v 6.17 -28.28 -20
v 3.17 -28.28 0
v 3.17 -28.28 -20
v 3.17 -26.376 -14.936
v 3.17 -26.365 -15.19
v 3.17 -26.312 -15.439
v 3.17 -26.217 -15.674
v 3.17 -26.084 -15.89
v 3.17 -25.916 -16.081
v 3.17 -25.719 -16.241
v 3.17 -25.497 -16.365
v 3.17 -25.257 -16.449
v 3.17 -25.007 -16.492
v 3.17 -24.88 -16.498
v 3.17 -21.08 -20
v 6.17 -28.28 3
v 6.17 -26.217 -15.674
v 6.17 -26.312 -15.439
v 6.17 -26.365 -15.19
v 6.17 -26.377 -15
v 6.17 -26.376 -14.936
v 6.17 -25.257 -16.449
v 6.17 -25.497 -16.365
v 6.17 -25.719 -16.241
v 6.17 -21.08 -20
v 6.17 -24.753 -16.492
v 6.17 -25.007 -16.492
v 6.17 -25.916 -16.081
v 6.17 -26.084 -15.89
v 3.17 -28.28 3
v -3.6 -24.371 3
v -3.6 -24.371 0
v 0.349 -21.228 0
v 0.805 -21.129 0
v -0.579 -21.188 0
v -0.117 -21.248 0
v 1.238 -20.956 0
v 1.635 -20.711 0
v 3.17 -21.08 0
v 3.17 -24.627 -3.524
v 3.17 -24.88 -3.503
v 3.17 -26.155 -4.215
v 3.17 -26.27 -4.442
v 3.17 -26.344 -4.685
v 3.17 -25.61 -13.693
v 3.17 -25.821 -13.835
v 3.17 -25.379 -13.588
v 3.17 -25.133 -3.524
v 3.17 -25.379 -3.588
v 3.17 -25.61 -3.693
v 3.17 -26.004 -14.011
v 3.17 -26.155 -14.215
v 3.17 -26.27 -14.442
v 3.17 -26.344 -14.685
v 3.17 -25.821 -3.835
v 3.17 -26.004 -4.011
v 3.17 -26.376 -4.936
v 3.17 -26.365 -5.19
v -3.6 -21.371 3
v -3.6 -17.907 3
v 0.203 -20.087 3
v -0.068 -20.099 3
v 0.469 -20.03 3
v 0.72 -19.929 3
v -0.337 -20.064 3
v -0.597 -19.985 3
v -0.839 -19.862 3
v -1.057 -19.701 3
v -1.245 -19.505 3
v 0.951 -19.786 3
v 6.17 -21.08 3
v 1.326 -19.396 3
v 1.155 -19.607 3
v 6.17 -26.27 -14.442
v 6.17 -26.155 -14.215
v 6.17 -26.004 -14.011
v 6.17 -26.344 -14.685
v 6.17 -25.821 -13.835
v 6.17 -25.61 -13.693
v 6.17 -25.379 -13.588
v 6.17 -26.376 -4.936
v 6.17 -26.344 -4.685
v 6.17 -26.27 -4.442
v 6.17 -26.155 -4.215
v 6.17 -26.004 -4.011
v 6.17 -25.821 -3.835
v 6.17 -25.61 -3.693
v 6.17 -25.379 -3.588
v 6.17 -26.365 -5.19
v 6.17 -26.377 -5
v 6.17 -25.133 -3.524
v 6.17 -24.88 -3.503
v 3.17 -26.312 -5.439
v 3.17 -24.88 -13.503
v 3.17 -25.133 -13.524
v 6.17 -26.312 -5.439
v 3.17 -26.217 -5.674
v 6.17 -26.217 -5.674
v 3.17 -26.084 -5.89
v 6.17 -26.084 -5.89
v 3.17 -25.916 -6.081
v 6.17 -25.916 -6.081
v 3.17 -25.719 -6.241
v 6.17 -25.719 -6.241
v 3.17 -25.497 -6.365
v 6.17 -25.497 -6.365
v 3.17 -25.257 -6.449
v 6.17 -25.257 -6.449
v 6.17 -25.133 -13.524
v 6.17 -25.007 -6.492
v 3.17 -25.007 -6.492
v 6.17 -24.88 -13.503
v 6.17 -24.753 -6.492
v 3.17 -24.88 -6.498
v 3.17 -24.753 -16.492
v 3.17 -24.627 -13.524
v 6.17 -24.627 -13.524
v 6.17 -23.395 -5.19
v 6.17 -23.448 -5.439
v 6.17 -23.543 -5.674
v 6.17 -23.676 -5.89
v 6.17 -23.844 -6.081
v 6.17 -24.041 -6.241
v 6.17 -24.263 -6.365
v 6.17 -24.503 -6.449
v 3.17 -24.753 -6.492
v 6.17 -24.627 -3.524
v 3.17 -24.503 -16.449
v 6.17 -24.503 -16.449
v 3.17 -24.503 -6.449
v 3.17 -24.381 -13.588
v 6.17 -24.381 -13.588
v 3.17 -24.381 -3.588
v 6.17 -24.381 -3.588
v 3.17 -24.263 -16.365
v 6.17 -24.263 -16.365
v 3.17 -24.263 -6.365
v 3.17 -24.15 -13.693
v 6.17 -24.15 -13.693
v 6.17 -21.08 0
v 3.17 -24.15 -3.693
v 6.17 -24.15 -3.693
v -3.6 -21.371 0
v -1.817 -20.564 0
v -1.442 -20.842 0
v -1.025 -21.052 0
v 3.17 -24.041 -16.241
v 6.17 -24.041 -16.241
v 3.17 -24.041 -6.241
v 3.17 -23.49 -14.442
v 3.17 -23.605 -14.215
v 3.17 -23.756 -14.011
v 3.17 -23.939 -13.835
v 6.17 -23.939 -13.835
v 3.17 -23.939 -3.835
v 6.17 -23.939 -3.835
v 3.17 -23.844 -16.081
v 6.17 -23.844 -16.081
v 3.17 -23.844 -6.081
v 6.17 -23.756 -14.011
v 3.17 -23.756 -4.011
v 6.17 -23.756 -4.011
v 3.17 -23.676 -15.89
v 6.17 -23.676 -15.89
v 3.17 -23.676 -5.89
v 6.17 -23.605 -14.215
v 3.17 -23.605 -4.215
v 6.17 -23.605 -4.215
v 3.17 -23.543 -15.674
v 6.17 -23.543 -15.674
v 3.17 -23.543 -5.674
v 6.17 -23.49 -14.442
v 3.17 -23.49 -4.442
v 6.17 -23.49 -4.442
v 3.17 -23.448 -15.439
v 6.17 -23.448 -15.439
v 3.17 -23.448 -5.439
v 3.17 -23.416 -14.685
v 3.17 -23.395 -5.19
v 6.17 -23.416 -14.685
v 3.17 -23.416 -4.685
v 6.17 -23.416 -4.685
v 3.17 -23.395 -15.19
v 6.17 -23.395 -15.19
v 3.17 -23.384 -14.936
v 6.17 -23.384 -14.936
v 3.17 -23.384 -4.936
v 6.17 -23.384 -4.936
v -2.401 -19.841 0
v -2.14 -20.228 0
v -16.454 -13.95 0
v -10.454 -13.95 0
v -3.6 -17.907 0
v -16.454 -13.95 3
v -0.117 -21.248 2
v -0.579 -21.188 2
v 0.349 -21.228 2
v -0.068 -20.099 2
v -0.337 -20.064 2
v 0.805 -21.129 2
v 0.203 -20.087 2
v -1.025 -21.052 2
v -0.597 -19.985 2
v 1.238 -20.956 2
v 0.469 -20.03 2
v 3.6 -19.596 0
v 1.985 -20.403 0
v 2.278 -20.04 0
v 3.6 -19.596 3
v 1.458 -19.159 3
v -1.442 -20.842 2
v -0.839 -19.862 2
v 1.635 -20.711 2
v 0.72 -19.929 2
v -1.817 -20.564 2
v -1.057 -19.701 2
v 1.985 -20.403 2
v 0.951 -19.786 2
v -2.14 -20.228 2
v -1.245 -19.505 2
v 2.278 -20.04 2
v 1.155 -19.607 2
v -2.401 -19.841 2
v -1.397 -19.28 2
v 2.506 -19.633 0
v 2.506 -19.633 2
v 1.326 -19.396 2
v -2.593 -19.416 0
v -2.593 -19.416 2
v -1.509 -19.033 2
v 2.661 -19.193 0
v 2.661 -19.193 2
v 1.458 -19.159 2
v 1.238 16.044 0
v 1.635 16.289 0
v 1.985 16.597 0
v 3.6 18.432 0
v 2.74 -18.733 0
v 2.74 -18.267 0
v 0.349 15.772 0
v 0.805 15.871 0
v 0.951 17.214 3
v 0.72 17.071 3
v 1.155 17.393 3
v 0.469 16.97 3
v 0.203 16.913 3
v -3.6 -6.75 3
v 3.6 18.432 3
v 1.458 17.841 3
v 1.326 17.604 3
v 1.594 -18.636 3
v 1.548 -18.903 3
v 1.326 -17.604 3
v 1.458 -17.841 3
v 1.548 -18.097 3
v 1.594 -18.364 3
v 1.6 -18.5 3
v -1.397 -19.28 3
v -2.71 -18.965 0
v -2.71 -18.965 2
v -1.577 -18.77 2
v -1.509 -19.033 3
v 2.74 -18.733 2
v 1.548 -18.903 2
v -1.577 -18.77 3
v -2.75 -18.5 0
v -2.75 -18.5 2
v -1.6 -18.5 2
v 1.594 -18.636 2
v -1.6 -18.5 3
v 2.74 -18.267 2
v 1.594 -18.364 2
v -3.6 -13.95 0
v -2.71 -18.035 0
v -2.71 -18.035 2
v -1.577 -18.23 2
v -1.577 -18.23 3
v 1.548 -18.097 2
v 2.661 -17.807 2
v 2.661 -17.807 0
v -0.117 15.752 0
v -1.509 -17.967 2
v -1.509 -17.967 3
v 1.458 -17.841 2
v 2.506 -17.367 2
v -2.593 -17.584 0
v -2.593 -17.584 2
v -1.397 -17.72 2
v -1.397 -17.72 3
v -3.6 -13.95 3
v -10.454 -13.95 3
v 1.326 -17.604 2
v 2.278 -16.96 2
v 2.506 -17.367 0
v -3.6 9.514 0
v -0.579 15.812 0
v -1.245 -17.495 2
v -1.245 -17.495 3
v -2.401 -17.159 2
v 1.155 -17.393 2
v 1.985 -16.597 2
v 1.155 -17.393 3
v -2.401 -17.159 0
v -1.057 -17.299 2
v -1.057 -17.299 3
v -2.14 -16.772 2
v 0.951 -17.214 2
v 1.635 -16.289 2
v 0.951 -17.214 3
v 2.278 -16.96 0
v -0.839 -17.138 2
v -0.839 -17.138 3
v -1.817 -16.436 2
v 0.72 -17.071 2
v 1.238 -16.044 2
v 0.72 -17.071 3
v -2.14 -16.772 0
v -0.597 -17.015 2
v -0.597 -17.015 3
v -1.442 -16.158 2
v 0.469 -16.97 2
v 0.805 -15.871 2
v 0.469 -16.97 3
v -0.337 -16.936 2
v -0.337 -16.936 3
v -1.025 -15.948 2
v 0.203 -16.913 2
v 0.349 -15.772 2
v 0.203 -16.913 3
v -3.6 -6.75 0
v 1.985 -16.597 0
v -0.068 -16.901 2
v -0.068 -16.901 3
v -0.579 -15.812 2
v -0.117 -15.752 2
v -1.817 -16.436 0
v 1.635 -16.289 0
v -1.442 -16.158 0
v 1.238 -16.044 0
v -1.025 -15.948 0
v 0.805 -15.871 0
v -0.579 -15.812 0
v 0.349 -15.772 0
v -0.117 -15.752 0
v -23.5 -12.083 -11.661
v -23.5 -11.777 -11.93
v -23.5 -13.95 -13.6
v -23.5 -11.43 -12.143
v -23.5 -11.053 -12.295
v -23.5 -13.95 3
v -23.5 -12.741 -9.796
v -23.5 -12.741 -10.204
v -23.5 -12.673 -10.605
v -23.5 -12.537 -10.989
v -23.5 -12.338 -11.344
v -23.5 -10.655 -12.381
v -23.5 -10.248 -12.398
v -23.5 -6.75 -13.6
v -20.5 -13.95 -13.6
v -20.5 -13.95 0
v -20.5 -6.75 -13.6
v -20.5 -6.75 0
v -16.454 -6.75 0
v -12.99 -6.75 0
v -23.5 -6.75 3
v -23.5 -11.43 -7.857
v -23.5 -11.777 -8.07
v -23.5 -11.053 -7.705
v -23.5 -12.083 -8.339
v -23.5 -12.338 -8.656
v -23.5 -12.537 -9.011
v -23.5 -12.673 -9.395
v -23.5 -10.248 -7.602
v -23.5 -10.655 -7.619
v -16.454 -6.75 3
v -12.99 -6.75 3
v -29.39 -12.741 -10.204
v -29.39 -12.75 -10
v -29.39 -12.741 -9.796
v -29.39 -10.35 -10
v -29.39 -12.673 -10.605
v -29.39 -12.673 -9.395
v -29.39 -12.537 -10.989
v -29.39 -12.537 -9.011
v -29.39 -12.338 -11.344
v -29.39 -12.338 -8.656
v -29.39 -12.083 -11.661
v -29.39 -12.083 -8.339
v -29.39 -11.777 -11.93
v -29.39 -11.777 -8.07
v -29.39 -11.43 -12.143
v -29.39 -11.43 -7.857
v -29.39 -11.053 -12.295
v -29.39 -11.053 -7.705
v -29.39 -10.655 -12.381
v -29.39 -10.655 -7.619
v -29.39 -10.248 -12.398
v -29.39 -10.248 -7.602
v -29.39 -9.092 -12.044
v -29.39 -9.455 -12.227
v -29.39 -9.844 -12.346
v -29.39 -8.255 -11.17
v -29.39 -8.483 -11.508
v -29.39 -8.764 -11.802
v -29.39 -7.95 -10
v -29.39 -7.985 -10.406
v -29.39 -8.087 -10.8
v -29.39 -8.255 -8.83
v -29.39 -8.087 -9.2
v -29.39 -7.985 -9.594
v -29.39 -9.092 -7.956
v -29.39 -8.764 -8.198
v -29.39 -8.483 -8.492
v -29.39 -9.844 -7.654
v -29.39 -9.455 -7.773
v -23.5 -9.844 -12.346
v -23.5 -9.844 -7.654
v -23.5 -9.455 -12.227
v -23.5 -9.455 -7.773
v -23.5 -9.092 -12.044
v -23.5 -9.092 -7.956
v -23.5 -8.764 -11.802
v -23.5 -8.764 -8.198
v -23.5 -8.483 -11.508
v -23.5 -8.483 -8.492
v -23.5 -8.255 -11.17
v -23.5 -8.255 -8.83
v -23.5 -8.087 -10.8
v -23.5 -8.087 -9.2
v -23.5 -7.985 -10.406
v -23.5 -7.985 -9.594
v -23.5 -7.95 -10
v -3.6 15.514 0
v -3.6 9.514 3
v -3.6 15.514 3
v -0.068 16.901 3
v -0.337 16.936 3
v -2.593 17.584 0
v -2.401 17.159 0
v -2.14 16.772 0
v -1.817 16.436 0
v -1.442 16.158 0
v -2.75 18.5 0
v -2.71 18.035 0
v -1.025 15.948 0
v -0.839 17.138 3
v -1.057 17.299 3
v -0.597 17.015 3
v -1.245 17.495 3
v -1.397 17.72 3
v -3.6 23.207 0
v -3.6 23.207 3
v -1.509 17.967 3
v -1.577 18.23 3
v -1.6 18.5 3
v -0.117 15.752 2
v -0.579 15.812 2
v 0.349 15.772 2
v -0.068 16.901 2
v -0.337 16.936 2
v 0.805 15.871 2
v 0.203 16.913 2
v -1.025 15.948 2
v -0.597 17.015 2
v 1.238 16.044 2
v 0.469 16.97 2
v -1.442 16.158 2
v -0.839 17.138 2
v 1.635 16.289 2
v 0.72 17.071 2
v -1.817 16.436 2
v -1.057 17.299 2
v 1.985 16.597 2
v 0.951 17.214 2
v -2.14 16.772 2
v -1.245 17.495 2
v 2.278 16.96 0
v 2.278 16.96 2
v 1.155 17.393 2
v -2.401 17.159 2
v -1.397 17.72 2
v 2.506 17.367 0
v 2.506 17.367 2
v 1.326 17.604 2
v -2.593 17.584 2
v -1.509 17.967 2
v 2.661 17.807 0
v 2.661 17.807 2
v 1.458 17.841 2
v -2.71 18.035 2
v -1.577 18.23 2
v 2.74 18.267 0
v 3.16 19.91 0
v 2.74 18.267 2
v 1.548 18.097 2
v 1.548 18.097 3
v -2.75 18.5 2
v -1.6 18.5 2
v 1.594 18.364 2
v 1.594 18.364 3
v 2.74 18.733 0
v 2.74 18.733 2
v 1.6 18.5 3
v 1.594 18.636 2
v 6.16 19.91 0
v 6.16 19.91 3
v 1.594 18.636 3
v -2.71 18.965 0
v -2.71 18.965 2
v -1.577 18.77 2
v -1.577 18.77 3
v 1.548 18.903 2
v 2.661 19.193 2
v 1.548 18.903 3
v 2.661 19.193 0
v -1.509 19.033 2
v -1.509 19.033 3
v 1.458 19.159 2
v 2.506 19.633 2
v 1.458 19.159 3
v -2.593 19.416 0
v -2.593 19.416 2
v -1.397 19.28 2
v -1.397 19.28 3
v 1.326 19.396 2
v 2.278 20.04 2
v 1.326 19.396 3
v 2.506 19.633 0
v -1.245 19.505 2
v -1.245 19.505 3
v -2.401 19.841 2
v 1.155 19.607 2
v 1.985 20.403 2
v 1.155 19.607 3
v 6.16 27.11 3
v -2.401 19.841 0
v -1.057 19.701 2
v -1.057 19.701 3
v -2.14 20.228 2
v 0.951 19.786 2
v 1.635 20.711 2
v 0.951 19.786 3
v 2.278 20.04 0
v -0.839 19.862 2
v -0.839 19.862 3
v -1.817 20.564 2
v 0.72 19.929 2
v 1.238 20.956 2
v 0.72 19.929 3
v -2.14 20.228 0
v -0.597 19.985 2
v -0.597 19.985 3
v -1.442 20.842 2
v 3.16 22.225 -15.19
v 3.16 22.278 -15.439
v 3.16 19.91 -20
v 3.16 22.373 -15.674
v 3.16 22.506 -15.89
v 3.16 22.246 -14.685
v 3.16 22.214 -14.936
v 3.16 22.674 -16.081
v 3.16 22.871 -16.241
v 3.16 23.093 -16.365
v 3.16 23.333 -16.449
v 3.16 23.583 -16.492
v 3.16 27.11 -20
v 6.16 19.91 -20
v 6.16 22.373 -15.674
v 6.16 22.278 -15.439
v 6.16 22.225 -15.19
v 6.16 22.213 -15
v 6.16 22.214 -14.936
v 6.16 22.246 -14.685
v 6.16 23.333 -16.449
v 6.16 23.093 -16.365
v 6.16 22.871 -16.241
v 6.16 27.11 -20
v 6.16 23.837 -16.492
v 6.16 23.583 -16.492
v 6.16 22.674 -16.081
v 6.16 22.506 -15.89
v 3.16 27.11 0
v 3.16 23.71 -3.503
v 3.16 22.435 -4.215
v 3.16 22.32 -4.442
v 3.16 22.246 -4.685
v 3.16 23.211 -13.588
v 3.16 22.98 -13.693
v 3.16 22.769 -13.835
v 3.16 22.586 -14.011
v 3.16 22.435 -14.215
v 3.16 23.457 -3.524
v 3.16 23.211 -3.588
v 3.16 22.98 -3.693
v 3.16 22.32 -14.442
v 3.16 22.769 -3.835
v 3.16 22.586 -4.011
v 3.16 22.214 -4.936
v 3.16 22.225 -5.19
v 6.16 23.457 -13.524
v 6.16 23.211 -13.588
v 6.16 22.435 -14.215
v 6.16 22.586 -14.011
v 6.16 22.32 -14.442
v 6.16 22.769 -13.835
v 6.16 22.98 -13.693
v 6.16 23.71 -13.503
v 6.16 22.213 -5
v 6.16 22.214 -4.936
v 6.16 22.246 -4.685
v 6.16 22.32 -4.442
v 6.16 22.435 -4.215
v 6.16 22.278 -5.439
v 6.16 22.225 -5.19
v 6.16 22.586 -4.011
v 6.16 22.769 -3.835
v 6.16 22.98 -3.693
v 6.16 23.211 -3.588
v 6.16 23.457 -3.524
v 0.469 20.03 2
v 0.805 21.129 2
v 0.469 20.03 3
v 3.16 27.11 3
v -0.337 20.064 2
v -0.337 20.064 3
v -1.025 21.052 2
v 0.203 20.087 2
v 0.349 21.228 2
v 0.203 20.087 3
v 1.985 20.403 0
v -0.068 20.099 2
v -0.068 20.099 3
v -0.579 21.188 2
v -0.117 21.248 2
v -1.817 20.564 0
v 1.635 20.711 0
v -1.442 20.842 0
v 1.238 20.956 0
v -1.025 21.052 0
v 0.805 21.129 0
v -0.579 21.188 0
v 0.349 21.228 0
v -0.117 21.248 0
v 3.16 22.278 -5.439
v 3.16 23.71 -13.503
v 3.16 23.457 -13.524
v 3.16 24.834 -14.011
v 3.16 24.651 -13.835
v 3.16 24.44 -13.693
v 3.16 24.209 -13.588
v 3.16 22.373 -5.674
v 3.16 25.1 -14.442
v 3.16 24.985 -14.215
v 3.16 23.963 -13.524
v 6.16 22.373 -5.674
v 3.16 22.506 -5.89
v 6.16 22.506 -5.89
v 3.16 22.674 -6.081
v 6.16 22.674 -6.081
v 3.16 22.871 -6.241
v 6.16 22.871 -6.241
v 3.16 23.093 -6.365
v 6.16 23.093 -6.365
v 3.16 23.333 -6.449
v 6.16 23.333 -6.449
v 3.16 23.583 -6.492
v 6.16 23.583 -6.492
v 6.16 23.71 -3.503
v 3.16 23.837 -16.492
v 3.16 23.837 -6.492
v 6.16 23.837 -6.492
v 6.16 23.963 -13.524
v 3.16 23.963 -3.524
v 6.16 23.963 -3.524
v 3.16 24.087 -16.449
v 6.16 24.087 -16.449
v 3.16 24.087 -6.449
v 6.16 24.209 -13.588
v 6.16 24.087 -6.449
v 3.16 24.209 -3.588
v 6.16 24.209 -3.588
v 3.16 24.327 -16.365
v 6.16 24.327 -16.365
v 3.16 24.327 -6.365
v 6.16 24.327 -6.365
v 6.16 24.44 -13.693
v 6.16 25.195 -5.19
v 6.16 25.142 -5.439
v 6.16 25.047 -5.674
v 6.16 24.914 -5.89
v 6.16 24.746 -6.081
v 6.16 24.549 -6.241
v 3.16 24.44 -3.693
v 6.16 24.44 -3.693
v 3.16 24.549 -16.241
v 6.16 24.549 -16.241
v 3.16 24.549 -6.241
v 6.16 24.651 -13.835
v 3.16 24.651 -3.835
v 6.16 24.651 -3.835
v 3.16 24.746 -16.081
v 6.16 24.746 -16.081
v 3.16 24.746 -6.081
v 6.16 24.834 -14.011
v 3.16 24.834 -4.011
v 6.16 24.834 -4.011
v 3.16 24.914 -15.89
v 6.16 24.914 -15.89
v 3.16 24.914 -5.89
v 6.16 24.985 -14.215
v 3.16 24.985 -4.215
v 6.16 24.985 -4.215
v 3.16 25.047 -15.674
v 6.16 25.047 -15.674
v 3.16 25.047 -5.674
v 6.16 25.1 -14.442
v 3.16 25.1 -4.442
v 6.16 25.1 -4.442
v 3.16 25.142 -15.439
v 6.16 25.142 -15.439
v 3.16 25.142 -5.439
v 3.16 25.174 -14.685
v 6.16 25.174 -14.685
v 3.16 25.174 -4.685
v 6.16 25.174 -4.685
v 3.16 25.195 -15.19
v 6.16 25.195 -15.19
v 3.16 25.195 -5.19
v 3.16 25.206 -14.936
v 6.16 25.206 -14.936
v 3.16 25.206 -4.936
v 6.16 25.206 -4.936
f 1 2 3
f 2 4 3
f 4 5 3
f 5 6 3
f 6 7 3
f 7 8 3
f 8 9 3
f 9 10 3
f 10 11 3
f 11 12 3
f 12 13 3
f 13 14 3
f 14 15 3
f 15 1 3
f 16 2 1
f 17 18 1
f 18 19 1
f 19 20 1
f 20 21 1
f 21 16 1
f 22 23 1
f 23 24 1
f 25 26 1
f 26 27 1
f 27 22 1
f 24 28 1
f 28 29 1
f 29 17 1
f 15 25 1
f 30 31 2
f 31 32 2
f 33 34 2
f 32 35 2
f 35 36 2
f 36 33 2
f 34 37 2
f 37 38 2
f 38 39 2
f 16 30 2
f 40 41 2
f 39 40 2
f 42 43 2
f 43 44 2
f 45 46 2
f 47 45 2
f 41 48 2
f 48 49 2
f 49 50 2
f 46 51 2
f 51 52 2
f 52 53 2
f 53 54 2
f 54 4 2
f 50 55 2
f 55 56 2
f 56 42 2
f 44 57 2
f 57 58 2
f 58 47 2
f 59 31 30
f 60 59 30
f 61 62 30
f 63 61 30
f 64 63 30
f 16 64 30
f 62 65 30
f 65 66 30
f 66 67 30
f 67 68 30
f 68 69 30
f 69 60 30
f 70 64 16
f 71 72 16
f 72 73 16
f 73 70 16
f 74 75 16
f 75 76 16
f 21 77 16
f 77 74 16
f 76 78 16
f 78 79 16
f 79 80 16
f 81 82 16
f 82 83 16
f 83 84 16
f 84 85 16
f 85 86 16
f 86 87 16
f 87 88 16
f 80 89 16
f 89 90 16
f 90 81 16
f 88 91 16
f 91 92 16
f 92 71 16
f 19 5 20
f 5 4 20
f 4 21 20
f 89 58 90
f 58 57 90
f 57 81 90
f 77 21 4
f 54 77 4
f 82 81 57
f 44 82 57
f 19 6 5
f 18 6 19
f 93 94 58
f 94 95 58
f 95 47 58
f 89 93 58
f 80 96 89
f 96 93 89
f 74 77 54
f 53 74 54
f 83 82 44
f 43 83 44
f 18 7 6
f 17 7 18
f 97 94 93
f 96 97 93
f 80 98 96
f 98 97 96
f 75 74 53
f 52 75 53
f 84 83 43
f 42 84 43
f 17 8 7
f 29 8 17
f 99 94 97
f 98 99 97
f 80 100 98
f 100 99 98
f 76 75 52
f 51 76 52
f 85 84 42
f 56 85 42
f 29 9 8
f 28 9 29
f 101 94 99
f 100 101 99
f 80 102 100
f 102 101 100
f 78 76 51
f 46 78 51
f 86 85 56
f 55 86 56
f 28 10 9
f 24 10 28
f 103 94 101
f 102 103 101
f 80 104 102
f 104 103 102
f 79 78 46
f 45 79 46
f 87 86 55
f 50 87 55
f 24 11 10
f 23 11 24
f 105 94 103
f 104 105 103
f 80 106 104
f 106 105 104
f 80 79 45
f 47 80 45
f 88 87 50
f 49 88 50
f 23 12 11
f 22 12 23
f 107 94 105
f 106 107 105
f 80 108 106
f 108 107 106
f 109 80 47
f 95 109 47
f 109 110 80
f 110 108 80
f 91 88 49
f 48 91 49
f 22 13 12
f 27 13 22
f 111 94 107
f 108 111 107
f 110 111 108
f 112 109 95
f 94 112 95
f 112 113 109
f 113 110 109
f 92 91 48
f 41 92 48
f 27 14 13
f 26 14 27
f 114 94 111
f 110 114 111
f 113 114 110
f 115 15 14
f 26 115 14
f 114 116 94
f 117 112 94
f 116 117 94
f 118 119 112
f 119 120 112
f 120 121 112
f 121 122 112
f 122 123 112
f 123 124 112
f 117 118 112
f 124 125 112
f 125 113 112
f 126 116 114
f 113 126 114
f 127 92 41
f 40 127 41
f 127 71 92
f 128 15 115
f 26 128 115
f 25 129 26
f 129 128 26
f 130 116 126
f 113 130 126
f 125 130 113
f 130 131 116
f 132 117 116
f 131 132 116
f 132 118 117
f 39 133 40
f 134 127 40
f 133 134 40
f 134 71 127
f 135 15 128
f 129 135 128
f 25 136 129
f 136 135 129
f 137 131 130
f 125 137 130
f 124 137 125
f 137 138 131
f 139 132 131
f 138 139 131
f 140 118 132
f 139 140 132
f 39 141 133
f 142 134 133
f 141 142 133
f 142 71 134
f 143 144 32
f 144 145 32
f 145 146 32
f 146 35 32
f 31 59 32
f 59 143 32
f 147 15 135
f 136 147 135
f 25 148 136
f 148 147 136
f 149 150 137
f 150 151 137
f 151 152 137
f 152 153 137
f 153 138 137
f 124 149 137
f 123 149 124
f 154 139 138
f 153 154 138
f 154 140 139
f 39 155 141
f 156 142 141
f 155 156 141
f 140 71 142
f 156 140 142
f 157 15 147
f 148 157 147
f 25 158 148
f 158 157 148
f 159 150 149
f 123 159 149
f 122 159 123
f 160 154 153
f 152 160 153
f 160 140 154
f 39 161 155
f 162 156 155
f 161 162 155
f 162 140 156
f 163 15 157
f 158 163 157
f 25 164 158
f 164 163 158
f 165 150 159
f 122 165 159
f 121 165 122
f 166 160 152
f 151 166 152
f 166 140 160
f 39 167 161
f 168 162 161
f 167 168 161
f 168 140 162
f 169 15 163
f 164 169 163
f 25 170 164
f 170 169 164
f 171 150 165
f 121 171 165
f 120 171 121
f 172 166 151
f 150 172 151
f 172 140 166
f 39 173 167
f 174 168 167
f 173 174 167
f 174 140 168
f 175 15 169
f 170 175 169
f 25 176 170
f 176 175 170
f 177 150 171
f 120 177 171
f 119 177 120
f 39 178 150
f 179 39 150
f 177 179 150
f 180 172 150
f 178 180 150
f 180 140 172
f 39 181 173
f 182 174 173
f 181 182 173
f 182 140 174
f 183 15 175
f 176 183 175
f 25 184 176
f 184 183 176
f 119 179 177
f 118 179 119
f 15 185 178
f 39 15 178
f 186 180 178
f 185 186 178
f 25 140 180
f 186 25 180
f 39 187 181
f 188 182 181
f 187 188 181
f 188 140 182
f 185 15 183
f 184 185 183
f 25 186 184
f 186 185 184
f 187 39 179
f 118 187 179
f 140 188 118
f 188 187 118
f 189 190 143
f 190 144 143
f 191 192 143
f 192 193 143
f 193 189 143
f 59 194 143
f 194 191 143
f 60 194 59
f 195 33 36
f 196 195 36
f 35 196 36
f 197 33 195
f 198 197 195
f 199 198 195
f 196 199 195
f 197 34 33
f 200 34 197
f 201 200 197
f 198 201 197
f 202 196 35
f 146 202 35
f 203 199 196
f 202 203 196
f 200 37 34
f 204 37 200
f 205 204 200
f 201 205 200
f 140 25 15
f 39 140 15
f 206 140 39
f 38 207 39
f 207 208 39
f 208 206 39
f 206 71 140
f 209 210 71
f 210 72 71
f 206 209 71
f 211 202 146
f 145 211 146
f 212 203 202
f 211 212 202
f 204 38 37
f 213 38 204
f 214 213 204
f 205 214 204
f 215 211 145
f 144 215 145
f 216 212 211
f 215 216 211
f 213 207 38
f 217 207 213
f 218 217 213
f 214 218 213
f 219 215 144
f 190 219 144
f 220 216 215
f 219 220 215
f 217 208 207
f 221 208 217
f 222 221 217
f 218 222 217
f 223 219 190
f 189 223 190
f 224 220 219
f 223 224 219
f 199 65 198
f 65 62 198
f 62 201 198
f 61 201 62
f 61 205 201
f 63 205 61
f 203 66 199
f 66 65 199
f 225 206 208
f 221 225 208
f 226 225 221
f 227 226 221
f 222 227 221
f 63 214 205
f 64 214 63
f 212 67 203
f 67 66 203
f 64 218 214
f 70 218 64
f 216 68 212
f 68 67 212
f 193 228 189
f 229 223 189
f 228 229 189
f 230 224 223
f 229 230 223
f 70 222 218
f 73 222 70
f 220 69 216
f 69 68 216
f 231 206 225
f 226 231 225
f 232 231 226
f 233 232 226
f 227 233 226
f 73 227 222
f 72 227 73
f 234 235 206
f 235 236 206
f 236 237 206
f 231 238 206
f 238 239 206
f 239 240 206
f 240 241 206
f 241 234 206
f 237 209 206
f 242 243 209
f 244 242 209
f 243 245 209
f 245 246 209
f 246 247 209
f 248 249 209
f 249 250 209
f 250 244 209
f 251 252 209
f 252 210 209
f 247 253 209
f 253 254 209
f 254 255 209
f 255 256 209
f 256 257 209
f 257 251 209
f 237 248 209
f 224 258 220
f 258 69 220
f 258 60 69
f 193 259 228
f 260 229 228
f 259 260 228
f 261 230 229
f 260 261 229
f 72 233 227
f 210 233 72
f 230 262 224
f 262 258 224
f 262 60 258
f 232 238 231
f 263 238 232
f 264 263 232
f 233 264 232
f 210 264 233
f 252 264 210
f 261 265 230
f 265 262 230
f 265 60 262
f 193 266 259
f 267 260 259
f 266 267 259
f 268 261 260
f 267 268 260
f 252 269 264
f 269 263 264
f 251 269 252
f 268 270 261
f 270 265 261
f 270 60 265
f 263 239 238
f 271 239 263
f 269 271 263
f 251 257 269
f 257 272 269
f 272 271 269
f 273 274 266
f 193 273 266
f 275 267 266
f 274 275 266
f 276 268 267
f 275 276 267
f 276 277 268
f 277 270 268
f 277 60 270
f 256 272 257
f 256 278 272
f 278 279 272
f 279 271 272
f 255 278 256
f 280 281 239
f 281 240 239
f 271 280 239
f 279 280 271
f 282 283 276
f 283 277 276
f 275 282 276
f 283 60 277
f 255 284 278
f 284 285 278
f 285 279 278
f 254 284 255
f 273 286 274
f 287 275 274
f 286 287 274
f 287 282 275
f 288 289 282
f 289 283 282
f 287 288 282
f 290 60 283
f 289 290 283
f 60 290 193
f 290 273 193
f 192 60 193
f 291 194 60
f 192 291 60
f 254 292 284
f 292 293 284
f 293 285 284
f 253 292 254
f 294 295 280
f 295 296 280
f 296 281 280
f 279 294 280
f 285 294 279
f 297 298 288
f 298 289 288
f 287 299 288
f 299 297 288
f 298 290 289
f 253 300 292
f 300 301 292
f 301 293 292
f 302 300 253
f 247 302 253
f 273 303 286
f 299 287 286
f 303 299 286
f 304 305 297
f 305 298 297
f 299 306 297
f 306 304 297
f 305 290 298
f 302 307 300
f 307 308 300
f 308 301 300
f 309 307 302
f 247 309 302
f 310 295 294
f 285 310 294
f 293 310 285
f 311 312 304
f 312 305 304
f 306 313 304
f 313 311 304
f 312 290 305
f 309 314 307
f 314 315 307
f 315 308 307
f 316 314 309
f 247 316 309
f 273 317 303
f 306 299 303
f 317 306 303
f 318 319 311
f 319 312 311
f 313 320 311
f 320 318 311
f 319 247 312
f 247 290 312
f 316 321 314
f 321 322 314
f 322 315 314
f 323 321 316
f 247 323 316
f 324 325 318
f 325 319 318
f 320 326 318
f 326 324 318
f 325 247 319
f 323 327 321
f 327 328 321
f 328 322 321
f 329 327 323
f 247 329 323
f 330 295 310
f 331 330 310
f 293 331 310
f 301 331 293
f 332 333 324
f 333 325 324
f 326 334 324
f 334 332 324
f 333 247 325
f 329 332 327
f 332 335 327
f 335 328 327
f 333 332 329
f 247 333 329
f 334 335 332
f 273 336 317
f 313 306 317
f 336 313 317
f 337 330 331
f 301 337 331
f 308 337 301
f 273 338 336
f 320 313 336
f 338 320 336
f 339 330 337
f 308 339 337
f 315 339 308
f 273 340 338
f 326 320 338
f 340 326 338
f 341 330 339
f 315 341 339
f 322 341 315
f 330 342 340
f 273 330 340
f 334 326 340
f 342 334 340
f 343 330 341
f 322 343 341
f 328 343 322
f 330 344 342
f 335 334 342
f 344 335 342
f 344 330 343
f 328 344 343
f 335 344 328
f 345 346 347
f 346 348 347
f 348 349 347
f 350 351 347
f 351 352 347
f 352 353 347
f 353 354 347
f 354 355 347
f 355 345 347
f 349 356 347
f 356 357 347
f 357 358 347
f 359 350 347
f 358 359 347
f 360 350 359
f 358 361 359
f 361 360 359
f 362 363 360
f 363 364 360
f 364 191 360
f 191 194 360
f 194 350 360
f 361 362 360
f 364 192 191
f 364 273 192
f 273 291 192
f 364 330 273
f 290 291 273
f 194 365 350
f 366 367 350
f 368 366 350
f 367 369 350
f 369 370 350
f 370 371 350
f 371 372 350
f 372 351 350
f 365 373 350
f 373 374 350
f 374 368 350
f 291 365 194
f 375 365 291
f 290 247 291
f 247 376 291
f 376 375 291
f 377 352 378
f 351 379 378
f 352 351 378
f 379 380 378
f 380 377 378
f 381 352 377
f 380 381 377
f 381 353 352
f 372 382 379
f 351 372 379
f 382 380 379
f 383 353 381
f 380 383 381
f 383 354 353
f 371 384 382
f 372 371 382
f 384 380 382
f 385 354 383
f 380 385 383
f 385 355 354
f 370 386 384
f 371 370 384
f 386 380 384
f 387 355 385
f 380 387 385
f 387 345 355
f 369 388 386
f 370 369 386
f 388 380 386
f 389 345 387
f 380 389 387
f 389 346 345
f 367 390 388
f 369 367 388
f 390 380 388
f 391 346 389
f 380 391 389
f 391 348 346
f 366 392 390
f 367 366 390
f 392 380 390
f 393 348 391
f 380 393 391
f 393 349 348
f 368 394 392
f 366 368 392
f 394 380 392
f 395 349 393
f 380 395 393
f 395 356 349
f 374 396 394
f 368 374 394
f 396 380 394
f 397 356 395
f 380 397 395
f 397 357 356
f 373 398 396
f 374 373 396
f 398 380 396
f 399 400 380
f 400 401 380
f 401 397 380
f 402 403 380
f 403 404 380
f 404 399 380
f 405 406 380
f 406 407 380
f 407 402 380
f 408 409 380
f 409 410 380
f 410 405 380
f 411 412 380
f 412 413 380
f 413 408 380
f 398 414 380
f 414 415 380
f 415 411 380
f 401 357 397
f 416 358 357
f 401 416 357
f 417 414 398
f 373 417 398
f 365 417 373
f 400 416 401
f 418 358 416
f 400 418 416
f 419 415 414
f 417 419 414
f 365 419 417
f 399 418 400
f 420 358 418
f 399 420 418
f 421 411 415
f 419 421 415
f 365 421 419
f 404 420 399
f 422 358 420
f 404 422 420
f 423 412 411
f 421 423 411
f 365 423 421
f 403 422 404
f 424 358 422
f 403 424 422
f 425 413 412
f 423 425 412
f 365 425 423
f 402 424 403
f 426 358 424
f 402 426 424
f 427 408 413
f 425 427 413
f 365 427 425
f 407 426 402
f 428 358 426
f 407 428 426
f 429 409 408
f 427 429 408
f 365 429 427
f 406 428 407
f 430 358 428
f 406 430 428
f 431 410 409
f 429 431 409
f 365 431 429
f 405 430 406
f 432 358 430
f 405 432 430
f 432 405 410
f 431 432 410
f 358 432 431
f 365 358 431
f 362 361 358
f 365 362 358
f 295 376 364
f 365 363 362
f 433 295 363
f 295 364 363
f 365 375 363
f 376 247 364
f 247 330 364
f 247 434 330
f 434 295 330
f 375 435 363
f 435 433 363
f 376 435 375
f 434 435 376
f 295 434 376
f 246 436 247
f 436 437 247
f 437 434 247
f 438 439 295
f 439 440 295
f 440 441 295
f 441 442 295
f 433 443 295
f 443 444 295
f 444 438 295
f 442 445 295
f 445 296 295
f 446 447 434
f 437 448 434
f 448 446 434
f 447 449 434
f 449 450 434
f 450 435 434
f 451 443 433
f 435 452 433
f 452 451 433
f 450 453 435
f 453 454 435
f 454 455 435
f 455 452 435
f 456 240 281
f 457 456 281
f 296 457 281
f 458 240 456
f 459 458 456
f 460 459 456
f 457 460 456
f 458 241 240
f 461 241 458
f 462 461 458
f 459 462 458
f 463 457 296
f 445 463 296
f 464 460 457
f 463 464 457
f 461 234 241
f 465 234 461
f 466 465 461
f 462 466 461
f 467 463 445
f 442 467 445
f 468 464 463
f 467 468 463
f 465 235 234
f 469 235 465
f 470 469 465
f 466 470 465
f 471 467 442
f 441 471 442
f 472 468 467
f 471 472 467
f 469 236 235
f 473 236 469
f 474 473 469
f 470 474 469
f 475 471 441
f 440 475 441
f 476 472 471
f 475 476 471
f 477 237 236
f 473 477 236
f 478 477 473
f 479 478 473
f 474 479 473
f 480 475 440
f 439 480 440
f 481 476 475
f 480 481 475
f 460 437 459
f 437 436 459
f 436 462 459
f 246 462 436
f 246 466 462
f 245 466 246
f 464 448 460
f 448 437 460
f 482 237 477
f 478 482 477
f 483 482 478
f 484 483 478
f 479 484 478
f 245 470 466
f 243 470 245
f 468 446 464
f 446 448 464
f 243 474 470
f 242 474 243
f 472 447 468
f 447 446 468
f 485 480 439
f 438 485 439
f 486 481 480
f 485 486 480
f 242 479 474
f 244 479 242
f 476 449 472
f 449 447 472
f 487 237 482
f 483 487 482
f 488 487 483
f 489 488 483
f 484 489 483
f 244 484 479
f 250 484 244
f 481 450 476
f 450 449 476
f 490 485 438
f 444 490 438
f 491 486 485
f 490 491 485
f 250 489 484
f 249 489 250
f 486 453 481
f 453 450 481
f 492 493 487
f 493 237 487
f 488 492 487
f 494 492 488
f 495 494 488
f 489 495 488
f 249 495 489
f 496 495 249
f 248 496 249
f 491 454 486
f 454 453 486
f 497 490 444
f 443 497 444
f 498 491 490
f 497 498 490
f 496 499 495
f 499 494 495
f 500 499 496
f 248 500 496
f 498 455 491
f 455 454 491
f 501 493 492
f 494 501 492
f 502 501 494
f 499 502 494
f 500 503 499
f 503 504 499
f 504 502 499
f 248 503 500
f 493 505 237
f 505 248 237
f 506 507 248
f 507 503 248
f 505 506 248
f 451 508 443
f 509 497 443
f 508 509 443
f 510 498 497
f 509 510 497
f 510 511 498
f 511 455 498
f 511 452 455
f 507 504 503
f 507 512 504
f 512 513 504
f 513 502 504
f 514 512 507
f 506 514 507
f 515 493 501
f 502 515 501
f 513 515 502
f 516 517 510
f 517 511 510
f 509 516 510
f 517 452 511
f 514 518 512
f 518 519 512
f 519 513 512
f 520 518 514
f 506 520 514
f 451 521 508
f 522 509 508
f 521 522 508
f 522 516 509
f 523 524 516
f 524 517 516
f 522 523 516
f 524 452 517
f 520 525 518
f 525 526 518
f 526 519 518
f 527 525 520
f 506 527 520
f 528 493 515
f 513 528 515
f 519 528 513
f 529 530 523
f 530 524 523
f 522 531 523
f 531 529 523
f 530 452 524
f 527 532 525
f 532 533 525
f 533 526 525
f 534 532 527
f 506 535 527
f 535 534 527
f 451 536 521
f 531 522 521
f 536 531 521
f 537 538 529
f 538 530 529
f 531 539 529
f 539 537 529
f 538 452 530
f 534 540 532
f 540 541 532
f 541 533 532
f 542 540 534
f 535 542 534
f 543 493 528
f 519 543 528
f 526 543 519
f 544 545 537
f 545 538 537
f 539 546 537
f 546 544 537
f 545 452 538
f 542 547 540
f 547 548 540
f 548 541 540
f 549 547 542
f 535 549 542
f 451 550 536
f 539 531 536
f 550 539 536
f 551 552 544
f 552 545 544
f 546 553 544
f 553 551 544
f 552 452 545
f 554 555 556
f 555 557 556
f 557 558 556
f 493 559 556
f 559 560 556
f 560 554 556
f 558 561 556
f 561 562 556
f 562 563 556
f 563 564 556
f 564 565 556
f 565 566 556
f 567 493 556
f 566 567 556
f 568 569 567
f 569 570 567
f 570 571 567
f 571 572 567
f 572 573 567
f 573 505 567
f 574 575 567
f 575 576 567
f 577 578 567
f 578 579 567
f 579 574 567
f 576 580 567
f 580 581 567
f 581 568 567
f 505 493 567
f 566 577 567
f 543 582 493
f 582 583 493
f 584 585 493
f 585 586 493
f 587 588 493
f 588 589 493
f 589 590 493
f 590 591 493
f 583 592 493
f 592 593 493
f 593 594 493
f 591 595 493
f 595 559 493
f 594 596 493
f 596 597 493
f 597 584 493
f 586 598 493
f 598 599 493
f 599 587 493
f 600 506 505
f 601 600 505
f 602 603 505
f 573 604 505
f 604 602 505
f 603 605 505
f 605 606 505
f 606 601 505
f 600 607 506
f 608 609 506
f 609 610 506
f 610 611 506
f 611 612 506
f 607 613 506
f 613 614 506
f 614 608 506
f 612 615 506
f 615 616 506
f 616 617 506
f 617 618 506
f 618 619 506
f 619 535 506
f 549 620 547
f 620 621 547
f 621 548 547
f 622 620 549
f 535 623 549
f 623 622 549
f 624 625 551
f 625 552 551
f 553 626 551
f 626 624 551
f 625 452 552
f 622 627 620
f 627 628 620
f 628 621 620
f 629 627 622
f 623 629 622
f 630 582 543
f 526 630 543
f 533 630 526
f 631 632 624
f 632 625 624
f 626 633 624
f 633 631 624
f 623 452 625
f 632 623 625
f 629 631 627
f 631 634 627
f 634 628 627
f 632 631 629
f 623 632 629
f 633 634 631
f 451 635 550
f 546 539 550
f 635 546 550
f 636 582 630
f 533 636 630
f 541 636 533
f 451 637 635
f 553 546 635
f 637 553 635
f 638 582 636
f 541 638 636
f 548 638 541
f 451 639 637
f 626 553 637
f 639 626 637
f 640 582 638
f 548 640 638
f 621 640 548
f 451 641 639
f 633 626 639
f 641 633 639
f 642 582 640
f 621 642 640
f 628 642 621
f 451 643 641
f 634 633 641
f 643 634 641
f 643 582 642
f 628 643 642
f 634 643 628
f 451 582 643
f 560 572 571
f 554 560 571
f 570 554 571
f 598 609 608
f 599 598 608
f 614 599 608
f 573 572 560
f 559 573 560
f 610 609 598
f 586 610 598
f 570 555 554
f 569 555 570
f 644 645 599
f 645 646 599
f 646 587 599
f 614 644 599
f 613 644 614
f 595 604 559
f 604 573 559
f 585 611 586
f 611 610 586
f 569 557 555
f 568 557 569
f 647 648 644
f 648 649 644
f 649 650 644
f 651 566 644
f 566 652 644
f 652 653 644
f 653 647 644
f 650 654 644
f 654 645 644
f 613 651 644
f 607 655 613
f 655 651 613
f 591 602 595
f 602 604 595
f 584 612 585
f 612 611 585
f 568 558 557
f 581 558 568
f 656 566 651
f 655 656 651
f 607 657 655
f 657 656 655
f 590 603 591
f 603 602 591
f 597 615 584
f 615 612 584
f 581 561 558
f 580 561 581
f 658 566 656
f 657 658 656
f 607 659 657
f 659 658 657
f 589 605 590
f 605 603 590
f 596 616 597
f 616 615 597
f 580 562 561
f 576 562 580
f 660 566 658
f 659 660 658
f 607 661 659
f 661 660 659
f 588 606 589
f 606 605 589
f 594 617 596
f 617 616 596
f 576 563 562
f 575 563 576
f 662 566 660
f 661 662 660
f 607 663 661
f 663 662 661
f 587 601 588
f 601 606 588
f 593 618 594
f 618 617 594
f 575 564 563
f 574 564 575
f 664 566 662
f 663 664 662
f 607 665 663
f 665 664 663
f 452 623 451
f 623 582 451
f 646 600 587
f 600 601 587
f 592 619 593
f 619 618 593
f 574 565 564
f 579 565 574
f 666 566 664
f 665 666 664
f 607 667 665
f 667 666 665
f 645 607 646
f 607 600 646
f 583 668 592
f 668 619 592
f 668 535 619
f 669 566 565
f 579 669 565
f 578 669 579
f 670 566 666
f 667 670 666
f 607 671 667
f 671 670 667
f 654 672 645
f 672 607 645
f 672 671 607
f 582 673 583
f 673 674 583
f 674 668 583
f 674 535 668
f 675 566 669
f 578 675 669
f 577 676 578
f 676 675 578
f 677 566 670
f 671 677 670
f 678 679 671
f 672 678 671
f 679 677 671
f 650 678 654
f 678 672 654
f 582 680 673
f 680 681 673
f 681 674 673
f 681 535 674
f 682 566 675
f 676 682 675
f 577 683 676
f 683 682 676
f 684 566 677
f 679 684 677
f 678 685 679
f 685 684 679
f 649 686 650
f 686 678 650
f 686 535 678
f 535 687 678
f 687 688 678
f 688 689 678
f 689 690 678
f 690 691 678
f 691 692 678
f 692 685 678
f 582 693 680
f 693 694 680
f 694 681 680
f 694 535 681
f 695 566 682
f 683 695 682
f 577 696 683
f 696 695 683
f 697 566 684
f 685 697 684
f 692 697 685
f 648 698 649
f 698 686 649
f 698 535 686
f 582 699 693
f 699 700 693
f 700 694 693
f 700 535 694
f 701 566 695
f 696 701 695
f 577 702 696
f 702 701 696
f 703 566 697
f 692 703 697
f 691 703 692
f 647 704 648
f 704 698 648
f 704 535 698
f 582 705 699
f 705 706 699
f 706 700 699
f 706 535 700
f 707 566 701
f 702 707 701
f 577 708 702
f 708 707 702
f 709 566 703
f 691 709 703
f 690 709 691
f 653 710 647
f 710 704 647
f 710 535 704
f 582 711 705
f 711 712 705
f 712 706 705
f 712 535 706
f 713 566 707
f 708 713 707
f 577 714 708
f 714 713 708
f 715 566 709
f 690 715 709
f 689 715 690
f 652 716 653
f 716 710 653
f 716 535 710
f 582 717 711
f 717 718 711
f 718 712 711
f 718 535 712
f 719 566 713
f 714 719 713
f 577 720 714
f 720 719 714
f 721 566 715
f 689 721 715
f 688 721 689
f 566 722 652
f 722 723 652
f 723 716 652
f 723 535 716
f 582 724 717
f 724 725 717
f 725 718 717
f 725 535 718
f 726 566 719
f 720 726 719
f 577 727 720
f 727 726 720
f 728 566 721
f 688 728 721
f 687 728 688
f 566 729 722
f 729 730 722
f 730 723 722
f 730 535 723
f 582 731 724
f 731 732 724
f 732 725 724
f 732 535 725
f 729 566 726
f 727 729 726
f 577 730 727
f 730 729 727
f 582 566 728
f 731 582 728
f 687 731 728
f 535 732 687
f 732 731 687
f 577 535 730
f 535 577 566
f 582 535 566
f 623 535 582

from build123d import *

# Parameters (mm, degrees)
SKETCH1_R           = 1.6
BOSS_EXTRUDE1_DEPTH = 3
SKETCH2_R           = 2.75
CUT_EXTRUDE1_DEPTH  = 2
SKETCH4_W           = 3
SKETCH4_H           = 7.2
BOSS_EXTRUDE2_DEPTH = 20
CUT_EXTRUDE2_REACH  = 5.01
SKETCH5_R           = 1.4975
SKETCH7_W           = 13.6
SKETCH7_H           = 7.2
BOSS_EXTRUDE3_DEPTH = 3
SKETCH8_R           = 2.4
BOSS_EXTRUDE4_DEPTH = 5.89


with BuildPart() as part:
    # Sketch1 → Boss-Extrude1 (new body)
    with BuildSketch(Plane.XY):
        Polygon((3.6, 18.431983311), (3.6, -19.596209808), (6.17, -21.08), (6.17, -28.28), (3.17, -28.28), (-3.6, -24.371338678), (-3.6, -21.371338678), (-16.45413565, -13.95), (-20.5, -13.95), (-23.5, -13.95), (-23.5, -6.75), (-20.5, -6.75), (-16.45413565, -6.75), (-3.6, 15.514016033), (-3.6, 23.20711218), (3.16, 27.11), (6.16, 27.11), (6.16, 19.91), align=None)
        with Locations((0, 18.5)):
            Circle(SKETCH1_R, mode=Mode.SUBTRACT)
        with Locations((0, -18.5)):
            Circle(SKETCH1_R, mode=Mode.SUBTRACT)
        Polygon((-10.45413565, -13.95), (-3.6, -13.95), (-3.6, -17.907237062), align=None, mode=Mode.SUBTRACT)
        Polygon((-3.6, -6.75), (-12.990034035, -6.75), (-3.6, 9.514016033), align=None, mode=Mode.SUBTRACT)
    extrude(amount=BOSS_EXTRUDE1_DEPTH)

    # Sketch2 → Cut-Extrude1 (cut)
    with BuildSketch(Plane(origin=(0, 0, 0), x_dir=(-1, 0, 0), z_dir=(0, 0, -1))):
        with Locations((0, 18.5)):
            Circle(SKETCH2_R)
        with Locations((0, -18.5)):
            Circle(SKETCH2_R)
    extrude(amount=-CUT_EXTRUDE1_DEPTH, mode=Mode.SUBTRACT)

    # Sketch4 → Boss-Extrude2 (add)
    with BuildSketch(Plane(origin=(0, 0, 0), x_dir=(-1, 0, 0), z_dir=(0, 0, -1))):
        with Locations((-4.66, 23.51)):
            Rectangle(SKETCH4_W, SKETCH4_H)
        with Locations((-4.67, -24.68)):
            Rectangle(SKETCH4_W, SKETCH4_H)
    extrude(amount=BOSS_EXTRUDE2_DEPTH)

    # Sketch5 → Cut-Extrude2 (cut, up to next)
    with BuildSketch(Plane.ZY.offset(-3.16), mode=Mode.PRIVATE) as cut_extrude2_sk1:
        with Locations((-5, 23.71)):
            Circle(SKETCH5_R)
    cut_extrude2_tool1 = extrude(cut_extrude2_sk1.sketch, amount=-CUT_EXTRUDE2_REACH, mode=Mode.PRIVATE) & part.part
    add(cut_extrude2_tool1.solids().sort_by_distance((3.16, 23.71, -5))[0], mode=Mode.SUBTRACT)
    # Sketch5 → Cut-Extrude2 (cut, up to next)
    with BuildSketch(Plane.ZY.offset(-3.16), mode=Mode.PRIVATE) as cut_extrude2_sk2:
        with Locations((-15, 23.71)):
            Circle(SKETCH5_R)
    cut_extrude2_tool2 = extrude(cut_extrude2_sk2.sketch, amount=-CUT_EXTRUDE2_REACH, mode=Mode.PRIVATE) & part.part
    add(cut_extrude2_tool2.solids().sort_by_distance((3.16, 23.71, -15))[0], mode=Mode.SUBTRACT)
    # Sketch5 → Cut-Extrude2 (cut, up to next)
    with BuildSketch(Plane.ZY.offset(-3.16), mode=Mode.PRIVATE) as cut_extrude2_sk3:
        with Locations((-15, -24.88)):
            Circle(SKETCH5_R)
    cut_extrude2_tool3 = extrude(cut_extrude2_sk3.sketch, amount=-CUT_EXTRUDE2_REACH, mode=Mode.PRIVATE) & part.part
    add(cut_extrude2_tool3.solids().sort_by_distance((3.16, -24.88, -15))[0], mode=Mode.SUBTRACT)
    # Sketch5 → Cut-Extrude2 (cut, up to next)
    with BuildSketch(Plane.ZY.offset(-3.16), mode=Mode.PRIVATE) as cut_extrude2_sk4:
        with Locations((-5, -24.88)):
            Circle(SKETCH5_R)
    cut_extrude2_tool4 = extrude(cut_extrude2_sk4.sketch, amount=-CUT_EXTRUDE2_REACH, mode=Mode.PRIVATE) & part.part
    add(cut_extrude2_tool4.solids().sort_by_distance((3.16, -24.88, -5))[0], mode=Mode.SUBTRACT)

    # Sketch7 → Boss-Extrude3 (add)
    with BuildSketch(Plane.ZY.offset(23.5)):
        with Locations((-6.8, -10.35)):
            Rectangle(SKETCH7_W, SKETCH7_H)
    extrude(amount=-BOSS_EXTRUDE3_DEPTH)

    # Sketch8 → Boss-Extrude4 (add)
    with BuildSketch(Plane.ZY.offset(23.5)):
        with Locations((-10, -10.35)):
            Circle(SKETCH8_R)
    extrude(amount=BOSS_EXTRUDE4_DEPTH)


solid = part.part
